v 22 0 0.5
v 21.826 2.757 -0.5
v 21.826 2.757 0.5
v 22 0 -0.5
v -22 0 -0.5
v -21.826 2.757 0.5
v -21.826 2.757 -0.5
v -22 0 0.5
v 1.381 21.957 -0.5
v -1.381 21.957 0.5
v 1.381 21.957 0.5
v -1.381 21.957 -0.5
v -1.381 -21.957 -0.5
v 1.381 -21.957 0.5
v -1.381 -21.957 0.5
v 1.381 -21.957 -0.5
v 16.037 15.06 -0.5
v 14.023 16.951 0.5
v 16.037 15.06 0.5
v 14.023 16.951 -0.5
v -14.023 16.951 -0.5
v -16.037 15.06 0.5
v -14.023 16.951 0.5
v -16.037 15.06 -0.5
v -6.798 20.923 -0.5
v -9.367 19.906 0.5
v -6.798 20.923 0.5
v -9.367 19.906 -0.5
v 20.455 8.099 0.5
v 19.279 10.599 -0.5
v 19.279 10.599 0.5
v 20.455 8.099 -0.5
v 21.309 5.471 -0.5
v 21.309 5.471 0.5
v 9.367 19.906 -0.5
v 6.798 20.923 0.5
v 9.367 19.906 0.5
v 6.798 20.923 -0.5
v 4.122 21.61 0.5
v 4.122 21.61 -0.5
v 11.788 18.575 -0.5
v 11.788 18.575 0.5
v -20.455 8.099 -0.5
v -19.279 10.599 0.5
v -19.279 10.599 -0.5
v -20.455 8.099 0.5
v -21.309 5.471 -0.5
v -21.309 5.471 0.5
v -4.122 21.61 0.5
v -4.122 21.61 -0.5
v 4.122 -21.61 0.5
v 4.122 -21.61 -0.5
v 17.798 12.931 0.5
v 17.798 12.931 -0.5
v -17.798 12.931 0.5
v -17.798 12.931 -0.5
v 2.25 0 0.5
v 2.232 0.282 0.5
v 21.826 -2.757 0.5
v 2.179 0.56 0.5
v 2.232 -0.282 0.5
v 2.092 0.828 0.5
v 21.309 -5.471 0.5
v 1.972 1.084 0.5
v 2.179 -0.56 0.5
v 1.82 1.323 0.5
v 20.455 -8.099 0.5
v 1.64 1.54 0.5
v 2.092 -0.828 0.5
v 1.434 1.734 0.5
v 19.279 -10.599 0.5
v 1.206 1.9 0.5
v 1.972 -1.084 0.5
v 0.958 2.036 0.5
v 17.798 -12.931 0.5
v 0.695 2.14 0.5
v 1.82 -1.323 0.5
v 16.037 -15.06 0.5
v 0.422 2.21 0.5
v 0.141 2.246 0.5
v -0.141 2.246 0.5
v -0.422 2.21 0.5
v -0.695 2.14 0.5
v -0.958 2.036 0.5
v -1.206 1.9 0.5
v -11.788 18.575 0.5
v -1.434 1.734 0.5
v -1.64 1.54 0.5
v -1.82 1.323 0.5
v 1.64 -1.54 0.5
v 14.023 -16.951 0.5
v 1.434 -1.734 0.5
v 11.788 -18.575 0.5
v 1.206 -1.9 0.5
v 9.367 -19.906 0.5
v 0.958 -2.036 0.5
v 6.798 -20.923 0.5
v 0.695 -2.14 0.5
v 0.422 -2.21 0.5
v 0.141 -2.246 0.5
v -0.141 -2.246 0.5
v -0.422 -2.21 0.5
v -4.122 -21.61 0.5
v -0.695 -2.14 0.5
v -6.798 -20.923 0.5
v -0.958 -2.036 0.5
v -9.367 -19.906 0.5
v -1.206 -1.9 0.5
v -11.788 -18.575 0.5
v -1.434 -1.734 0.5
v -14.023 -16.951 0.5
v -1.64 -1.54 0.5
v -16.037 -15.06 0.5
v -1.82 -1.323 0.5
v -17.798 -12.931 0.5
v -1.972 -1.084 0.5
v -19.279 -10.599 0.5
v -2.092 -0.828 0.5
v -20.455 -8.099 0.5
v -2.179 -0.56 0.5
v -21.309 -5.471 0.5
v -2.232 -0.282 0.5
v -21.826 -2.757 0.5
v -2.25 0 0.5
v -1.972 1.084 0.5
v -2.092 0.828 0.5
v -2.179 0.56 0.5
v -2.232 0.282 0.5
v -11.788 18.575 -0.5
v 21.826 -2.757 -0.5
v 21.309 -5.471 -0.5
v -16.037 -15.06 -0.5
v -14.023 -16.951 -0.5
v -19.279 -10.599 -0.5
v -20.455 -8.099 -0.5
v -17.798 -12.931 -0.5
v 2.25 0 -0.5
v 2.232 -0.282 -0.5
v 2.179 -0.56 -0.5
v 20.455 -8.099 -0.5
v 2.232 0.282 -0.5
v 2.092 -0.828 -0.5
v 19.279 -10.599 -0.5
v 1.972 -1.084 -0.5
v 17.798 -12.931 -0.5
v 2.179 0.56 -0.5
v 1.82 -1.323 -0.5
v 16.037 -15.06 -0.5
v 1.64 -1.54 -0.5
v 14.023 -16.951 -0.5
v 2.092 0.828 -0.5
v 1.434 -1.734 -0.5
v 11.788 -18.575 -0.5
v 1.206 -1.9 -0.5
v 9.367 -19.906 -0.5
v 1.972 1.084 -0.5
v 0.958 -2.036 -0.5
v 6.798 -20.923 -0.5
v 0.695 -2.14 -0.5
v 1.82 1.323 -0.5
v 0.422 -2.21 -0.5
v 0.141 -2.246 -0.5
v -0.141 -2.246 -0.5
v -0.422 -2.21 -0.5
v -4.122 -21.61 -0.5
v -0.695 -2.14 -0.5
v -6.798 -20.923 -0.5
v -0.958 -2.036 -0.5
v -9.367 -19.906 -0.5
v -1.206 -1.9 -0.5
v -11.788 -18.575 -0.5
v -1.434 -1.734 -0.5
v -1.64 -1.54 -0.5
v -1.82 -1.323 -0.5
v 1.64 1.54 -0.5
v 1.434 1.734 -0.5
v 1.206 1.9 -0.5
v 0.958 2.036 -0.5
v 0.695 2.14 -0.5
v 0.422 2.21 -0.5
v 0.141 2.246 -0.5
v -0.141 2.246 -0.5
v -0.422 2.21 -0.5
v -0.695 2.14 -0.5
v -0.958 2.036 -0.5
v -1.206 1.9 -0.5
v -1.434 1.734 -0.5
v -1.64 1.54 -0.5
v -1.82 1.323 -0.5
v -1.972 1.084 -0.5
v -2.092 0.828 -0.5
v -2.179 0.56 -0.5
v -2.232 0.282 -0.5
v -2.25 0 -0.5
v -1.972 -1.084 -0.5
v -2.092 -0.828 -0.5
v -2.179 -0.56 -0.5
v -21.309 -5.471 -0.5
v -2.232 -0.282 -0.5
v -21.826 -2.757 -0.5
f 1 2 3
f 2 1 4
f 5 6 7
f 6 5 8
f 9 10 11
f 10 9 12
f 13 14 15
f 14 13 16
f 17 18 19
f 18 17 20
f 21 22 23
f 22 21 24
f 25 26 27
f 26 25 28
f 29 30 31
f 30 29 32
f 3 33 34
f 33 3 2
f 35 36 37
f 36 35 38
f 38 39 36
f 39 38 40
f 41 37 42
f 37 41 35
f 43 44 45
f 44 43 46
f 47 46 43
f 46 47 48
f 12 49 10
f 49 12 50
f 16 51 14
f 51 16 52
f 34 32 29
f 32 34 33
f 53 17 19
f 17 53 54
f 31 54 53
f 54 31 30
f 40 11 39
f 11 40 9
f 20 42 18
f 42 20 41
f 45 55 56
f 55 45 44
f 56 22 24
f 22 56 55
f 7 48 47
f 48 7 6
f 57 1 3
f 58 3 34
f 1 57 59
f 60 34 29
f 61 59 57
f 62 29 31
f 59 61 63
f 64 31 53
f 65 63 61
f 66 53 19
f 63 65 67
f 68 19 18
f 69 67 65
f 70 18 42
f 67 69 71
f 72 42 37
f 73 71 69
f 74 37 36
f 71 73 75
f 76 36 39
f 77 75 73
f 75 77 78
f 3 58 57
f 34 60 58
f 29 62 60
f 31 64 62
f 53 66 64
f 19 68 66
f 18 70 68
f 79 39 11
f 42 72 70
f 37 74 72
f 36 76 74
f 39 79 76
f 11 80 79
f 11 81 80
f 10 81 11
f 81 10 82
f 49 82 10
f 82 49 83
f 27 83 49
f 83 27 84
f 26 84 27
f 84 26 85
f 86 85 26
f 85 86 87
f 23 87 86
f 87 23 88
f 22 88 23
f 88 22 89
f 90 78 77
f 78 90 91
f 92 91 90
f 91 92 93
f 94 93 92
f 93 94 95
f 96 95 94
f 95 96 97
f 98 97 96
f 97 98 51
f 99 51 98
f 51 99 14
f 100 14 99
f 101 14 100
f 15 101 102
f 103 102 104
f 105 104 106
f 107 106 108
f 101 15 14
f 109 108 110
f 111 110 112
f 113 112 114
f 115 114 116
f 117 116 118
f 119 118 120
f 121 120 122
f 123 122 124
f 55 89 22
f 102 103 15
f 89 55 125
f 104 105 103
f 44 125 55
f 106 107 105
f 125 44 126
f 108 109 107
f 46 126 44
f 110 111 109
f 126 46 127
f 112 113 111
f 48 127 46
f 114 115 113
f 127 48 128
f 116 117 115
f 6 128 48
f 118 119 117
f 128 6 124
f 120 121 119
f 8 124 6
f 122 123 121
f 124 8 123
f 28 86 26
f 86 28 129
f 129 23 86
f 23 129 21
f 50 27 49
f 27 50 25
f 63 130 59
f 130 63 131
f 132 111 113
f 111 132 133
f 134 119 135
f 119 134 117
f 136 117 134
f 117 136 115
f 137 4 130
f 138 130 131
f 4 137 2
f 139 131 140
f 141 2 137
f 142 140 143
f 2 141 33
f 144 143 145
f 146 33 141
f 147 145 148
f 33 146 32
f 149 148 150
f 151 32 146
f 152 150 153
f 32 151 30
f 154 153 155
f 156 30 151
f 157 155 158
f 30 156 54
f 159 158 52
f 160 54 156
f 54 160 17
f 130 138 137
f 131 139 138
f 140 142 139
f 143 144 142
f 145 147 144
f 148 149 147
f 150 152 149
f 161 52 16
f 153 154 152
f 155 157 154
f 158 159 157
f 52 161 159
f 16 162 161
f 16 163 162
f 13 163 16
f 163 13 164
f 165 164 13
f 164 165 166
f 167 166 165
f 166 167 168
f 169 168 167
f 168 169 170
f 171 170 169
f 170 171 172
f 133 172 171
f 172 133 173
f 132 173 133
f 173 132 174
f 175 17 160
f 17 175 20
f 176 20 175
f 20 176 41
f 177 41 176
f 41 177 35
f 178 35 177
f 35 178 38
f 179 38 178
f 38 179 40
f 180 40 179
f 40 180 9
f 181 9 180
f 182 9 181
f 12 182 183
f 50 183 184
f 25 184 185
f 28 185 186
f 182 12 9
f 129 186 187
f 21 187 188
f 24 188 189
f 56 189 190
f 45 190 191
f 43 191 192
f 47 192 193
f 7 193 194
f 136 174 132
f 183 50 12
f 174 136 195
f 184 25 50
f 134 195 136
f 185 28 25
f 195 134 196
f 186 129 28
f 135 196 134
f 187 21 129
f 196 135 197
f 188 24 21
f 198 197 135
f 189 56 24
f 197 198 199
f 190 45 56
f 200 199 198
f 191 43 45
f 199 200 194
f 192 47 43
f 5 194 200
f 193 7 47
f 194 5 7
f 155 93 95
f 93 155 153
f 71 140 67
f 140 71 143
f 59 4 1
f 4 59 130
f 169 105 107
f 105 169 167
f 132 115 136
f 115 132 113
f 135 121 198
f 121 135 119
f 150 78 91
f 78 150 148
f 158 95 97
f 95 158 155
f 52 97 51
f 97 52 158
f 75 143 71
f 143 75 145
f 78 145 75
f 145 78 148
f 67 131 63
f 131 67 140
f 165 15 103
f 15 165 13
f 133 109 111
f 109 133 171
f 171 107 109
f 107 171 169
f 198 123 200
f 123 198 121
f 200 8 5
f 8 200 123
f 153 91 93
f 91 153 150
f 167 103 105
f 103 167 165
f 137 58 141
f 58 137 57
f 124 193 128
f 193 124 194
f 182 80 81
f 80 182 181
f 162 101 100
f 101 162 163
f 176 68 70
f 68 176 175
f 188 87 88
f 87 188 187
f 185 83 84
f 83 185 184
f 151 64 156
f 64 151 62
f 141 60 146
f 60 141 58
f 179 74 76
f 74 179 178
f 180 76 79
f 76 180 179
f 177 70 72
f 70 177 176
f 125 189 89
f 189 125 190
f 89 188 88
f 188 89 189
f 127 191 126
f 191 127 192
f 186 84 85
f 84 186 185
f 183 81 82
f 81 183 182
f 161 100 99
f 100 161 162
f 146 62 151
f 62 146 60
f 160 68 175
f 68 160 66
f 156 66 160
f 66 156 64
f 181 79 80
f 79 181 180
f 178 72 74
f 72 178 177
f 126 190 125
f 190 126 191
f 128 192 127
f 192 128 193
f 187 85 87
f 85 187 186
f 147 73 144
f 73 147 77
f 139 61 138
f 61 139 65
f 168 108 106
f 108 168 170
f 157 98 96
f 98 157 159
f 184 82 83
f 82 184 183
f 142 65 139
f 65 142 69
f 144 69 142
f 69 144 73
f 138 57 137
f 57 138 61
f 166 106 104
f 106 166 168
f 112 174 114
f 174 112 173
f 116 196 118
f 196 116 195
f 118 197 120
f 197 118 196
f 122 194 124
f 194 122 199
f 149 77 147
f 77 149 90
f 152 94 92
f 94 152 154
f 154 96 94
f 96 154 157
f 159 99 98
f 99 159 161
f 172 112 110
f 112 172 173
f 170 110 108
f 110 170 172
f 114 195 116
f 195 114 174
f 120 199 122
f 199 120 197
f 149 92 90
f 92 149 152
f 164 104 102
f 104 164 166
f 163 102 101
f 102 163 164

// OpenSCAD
$fn = 50;


difference() {
	union() {
		translate(v = [0, 0, -0.5000000000]) {
			cylinder(h = 1, r = 22.0000000000);
		}
	}
	union() {
		translate(v = [0, 0, -100.0000000000]) {
			cylinder(h = 200, r = 2.2500000000);
		}
	}
}
